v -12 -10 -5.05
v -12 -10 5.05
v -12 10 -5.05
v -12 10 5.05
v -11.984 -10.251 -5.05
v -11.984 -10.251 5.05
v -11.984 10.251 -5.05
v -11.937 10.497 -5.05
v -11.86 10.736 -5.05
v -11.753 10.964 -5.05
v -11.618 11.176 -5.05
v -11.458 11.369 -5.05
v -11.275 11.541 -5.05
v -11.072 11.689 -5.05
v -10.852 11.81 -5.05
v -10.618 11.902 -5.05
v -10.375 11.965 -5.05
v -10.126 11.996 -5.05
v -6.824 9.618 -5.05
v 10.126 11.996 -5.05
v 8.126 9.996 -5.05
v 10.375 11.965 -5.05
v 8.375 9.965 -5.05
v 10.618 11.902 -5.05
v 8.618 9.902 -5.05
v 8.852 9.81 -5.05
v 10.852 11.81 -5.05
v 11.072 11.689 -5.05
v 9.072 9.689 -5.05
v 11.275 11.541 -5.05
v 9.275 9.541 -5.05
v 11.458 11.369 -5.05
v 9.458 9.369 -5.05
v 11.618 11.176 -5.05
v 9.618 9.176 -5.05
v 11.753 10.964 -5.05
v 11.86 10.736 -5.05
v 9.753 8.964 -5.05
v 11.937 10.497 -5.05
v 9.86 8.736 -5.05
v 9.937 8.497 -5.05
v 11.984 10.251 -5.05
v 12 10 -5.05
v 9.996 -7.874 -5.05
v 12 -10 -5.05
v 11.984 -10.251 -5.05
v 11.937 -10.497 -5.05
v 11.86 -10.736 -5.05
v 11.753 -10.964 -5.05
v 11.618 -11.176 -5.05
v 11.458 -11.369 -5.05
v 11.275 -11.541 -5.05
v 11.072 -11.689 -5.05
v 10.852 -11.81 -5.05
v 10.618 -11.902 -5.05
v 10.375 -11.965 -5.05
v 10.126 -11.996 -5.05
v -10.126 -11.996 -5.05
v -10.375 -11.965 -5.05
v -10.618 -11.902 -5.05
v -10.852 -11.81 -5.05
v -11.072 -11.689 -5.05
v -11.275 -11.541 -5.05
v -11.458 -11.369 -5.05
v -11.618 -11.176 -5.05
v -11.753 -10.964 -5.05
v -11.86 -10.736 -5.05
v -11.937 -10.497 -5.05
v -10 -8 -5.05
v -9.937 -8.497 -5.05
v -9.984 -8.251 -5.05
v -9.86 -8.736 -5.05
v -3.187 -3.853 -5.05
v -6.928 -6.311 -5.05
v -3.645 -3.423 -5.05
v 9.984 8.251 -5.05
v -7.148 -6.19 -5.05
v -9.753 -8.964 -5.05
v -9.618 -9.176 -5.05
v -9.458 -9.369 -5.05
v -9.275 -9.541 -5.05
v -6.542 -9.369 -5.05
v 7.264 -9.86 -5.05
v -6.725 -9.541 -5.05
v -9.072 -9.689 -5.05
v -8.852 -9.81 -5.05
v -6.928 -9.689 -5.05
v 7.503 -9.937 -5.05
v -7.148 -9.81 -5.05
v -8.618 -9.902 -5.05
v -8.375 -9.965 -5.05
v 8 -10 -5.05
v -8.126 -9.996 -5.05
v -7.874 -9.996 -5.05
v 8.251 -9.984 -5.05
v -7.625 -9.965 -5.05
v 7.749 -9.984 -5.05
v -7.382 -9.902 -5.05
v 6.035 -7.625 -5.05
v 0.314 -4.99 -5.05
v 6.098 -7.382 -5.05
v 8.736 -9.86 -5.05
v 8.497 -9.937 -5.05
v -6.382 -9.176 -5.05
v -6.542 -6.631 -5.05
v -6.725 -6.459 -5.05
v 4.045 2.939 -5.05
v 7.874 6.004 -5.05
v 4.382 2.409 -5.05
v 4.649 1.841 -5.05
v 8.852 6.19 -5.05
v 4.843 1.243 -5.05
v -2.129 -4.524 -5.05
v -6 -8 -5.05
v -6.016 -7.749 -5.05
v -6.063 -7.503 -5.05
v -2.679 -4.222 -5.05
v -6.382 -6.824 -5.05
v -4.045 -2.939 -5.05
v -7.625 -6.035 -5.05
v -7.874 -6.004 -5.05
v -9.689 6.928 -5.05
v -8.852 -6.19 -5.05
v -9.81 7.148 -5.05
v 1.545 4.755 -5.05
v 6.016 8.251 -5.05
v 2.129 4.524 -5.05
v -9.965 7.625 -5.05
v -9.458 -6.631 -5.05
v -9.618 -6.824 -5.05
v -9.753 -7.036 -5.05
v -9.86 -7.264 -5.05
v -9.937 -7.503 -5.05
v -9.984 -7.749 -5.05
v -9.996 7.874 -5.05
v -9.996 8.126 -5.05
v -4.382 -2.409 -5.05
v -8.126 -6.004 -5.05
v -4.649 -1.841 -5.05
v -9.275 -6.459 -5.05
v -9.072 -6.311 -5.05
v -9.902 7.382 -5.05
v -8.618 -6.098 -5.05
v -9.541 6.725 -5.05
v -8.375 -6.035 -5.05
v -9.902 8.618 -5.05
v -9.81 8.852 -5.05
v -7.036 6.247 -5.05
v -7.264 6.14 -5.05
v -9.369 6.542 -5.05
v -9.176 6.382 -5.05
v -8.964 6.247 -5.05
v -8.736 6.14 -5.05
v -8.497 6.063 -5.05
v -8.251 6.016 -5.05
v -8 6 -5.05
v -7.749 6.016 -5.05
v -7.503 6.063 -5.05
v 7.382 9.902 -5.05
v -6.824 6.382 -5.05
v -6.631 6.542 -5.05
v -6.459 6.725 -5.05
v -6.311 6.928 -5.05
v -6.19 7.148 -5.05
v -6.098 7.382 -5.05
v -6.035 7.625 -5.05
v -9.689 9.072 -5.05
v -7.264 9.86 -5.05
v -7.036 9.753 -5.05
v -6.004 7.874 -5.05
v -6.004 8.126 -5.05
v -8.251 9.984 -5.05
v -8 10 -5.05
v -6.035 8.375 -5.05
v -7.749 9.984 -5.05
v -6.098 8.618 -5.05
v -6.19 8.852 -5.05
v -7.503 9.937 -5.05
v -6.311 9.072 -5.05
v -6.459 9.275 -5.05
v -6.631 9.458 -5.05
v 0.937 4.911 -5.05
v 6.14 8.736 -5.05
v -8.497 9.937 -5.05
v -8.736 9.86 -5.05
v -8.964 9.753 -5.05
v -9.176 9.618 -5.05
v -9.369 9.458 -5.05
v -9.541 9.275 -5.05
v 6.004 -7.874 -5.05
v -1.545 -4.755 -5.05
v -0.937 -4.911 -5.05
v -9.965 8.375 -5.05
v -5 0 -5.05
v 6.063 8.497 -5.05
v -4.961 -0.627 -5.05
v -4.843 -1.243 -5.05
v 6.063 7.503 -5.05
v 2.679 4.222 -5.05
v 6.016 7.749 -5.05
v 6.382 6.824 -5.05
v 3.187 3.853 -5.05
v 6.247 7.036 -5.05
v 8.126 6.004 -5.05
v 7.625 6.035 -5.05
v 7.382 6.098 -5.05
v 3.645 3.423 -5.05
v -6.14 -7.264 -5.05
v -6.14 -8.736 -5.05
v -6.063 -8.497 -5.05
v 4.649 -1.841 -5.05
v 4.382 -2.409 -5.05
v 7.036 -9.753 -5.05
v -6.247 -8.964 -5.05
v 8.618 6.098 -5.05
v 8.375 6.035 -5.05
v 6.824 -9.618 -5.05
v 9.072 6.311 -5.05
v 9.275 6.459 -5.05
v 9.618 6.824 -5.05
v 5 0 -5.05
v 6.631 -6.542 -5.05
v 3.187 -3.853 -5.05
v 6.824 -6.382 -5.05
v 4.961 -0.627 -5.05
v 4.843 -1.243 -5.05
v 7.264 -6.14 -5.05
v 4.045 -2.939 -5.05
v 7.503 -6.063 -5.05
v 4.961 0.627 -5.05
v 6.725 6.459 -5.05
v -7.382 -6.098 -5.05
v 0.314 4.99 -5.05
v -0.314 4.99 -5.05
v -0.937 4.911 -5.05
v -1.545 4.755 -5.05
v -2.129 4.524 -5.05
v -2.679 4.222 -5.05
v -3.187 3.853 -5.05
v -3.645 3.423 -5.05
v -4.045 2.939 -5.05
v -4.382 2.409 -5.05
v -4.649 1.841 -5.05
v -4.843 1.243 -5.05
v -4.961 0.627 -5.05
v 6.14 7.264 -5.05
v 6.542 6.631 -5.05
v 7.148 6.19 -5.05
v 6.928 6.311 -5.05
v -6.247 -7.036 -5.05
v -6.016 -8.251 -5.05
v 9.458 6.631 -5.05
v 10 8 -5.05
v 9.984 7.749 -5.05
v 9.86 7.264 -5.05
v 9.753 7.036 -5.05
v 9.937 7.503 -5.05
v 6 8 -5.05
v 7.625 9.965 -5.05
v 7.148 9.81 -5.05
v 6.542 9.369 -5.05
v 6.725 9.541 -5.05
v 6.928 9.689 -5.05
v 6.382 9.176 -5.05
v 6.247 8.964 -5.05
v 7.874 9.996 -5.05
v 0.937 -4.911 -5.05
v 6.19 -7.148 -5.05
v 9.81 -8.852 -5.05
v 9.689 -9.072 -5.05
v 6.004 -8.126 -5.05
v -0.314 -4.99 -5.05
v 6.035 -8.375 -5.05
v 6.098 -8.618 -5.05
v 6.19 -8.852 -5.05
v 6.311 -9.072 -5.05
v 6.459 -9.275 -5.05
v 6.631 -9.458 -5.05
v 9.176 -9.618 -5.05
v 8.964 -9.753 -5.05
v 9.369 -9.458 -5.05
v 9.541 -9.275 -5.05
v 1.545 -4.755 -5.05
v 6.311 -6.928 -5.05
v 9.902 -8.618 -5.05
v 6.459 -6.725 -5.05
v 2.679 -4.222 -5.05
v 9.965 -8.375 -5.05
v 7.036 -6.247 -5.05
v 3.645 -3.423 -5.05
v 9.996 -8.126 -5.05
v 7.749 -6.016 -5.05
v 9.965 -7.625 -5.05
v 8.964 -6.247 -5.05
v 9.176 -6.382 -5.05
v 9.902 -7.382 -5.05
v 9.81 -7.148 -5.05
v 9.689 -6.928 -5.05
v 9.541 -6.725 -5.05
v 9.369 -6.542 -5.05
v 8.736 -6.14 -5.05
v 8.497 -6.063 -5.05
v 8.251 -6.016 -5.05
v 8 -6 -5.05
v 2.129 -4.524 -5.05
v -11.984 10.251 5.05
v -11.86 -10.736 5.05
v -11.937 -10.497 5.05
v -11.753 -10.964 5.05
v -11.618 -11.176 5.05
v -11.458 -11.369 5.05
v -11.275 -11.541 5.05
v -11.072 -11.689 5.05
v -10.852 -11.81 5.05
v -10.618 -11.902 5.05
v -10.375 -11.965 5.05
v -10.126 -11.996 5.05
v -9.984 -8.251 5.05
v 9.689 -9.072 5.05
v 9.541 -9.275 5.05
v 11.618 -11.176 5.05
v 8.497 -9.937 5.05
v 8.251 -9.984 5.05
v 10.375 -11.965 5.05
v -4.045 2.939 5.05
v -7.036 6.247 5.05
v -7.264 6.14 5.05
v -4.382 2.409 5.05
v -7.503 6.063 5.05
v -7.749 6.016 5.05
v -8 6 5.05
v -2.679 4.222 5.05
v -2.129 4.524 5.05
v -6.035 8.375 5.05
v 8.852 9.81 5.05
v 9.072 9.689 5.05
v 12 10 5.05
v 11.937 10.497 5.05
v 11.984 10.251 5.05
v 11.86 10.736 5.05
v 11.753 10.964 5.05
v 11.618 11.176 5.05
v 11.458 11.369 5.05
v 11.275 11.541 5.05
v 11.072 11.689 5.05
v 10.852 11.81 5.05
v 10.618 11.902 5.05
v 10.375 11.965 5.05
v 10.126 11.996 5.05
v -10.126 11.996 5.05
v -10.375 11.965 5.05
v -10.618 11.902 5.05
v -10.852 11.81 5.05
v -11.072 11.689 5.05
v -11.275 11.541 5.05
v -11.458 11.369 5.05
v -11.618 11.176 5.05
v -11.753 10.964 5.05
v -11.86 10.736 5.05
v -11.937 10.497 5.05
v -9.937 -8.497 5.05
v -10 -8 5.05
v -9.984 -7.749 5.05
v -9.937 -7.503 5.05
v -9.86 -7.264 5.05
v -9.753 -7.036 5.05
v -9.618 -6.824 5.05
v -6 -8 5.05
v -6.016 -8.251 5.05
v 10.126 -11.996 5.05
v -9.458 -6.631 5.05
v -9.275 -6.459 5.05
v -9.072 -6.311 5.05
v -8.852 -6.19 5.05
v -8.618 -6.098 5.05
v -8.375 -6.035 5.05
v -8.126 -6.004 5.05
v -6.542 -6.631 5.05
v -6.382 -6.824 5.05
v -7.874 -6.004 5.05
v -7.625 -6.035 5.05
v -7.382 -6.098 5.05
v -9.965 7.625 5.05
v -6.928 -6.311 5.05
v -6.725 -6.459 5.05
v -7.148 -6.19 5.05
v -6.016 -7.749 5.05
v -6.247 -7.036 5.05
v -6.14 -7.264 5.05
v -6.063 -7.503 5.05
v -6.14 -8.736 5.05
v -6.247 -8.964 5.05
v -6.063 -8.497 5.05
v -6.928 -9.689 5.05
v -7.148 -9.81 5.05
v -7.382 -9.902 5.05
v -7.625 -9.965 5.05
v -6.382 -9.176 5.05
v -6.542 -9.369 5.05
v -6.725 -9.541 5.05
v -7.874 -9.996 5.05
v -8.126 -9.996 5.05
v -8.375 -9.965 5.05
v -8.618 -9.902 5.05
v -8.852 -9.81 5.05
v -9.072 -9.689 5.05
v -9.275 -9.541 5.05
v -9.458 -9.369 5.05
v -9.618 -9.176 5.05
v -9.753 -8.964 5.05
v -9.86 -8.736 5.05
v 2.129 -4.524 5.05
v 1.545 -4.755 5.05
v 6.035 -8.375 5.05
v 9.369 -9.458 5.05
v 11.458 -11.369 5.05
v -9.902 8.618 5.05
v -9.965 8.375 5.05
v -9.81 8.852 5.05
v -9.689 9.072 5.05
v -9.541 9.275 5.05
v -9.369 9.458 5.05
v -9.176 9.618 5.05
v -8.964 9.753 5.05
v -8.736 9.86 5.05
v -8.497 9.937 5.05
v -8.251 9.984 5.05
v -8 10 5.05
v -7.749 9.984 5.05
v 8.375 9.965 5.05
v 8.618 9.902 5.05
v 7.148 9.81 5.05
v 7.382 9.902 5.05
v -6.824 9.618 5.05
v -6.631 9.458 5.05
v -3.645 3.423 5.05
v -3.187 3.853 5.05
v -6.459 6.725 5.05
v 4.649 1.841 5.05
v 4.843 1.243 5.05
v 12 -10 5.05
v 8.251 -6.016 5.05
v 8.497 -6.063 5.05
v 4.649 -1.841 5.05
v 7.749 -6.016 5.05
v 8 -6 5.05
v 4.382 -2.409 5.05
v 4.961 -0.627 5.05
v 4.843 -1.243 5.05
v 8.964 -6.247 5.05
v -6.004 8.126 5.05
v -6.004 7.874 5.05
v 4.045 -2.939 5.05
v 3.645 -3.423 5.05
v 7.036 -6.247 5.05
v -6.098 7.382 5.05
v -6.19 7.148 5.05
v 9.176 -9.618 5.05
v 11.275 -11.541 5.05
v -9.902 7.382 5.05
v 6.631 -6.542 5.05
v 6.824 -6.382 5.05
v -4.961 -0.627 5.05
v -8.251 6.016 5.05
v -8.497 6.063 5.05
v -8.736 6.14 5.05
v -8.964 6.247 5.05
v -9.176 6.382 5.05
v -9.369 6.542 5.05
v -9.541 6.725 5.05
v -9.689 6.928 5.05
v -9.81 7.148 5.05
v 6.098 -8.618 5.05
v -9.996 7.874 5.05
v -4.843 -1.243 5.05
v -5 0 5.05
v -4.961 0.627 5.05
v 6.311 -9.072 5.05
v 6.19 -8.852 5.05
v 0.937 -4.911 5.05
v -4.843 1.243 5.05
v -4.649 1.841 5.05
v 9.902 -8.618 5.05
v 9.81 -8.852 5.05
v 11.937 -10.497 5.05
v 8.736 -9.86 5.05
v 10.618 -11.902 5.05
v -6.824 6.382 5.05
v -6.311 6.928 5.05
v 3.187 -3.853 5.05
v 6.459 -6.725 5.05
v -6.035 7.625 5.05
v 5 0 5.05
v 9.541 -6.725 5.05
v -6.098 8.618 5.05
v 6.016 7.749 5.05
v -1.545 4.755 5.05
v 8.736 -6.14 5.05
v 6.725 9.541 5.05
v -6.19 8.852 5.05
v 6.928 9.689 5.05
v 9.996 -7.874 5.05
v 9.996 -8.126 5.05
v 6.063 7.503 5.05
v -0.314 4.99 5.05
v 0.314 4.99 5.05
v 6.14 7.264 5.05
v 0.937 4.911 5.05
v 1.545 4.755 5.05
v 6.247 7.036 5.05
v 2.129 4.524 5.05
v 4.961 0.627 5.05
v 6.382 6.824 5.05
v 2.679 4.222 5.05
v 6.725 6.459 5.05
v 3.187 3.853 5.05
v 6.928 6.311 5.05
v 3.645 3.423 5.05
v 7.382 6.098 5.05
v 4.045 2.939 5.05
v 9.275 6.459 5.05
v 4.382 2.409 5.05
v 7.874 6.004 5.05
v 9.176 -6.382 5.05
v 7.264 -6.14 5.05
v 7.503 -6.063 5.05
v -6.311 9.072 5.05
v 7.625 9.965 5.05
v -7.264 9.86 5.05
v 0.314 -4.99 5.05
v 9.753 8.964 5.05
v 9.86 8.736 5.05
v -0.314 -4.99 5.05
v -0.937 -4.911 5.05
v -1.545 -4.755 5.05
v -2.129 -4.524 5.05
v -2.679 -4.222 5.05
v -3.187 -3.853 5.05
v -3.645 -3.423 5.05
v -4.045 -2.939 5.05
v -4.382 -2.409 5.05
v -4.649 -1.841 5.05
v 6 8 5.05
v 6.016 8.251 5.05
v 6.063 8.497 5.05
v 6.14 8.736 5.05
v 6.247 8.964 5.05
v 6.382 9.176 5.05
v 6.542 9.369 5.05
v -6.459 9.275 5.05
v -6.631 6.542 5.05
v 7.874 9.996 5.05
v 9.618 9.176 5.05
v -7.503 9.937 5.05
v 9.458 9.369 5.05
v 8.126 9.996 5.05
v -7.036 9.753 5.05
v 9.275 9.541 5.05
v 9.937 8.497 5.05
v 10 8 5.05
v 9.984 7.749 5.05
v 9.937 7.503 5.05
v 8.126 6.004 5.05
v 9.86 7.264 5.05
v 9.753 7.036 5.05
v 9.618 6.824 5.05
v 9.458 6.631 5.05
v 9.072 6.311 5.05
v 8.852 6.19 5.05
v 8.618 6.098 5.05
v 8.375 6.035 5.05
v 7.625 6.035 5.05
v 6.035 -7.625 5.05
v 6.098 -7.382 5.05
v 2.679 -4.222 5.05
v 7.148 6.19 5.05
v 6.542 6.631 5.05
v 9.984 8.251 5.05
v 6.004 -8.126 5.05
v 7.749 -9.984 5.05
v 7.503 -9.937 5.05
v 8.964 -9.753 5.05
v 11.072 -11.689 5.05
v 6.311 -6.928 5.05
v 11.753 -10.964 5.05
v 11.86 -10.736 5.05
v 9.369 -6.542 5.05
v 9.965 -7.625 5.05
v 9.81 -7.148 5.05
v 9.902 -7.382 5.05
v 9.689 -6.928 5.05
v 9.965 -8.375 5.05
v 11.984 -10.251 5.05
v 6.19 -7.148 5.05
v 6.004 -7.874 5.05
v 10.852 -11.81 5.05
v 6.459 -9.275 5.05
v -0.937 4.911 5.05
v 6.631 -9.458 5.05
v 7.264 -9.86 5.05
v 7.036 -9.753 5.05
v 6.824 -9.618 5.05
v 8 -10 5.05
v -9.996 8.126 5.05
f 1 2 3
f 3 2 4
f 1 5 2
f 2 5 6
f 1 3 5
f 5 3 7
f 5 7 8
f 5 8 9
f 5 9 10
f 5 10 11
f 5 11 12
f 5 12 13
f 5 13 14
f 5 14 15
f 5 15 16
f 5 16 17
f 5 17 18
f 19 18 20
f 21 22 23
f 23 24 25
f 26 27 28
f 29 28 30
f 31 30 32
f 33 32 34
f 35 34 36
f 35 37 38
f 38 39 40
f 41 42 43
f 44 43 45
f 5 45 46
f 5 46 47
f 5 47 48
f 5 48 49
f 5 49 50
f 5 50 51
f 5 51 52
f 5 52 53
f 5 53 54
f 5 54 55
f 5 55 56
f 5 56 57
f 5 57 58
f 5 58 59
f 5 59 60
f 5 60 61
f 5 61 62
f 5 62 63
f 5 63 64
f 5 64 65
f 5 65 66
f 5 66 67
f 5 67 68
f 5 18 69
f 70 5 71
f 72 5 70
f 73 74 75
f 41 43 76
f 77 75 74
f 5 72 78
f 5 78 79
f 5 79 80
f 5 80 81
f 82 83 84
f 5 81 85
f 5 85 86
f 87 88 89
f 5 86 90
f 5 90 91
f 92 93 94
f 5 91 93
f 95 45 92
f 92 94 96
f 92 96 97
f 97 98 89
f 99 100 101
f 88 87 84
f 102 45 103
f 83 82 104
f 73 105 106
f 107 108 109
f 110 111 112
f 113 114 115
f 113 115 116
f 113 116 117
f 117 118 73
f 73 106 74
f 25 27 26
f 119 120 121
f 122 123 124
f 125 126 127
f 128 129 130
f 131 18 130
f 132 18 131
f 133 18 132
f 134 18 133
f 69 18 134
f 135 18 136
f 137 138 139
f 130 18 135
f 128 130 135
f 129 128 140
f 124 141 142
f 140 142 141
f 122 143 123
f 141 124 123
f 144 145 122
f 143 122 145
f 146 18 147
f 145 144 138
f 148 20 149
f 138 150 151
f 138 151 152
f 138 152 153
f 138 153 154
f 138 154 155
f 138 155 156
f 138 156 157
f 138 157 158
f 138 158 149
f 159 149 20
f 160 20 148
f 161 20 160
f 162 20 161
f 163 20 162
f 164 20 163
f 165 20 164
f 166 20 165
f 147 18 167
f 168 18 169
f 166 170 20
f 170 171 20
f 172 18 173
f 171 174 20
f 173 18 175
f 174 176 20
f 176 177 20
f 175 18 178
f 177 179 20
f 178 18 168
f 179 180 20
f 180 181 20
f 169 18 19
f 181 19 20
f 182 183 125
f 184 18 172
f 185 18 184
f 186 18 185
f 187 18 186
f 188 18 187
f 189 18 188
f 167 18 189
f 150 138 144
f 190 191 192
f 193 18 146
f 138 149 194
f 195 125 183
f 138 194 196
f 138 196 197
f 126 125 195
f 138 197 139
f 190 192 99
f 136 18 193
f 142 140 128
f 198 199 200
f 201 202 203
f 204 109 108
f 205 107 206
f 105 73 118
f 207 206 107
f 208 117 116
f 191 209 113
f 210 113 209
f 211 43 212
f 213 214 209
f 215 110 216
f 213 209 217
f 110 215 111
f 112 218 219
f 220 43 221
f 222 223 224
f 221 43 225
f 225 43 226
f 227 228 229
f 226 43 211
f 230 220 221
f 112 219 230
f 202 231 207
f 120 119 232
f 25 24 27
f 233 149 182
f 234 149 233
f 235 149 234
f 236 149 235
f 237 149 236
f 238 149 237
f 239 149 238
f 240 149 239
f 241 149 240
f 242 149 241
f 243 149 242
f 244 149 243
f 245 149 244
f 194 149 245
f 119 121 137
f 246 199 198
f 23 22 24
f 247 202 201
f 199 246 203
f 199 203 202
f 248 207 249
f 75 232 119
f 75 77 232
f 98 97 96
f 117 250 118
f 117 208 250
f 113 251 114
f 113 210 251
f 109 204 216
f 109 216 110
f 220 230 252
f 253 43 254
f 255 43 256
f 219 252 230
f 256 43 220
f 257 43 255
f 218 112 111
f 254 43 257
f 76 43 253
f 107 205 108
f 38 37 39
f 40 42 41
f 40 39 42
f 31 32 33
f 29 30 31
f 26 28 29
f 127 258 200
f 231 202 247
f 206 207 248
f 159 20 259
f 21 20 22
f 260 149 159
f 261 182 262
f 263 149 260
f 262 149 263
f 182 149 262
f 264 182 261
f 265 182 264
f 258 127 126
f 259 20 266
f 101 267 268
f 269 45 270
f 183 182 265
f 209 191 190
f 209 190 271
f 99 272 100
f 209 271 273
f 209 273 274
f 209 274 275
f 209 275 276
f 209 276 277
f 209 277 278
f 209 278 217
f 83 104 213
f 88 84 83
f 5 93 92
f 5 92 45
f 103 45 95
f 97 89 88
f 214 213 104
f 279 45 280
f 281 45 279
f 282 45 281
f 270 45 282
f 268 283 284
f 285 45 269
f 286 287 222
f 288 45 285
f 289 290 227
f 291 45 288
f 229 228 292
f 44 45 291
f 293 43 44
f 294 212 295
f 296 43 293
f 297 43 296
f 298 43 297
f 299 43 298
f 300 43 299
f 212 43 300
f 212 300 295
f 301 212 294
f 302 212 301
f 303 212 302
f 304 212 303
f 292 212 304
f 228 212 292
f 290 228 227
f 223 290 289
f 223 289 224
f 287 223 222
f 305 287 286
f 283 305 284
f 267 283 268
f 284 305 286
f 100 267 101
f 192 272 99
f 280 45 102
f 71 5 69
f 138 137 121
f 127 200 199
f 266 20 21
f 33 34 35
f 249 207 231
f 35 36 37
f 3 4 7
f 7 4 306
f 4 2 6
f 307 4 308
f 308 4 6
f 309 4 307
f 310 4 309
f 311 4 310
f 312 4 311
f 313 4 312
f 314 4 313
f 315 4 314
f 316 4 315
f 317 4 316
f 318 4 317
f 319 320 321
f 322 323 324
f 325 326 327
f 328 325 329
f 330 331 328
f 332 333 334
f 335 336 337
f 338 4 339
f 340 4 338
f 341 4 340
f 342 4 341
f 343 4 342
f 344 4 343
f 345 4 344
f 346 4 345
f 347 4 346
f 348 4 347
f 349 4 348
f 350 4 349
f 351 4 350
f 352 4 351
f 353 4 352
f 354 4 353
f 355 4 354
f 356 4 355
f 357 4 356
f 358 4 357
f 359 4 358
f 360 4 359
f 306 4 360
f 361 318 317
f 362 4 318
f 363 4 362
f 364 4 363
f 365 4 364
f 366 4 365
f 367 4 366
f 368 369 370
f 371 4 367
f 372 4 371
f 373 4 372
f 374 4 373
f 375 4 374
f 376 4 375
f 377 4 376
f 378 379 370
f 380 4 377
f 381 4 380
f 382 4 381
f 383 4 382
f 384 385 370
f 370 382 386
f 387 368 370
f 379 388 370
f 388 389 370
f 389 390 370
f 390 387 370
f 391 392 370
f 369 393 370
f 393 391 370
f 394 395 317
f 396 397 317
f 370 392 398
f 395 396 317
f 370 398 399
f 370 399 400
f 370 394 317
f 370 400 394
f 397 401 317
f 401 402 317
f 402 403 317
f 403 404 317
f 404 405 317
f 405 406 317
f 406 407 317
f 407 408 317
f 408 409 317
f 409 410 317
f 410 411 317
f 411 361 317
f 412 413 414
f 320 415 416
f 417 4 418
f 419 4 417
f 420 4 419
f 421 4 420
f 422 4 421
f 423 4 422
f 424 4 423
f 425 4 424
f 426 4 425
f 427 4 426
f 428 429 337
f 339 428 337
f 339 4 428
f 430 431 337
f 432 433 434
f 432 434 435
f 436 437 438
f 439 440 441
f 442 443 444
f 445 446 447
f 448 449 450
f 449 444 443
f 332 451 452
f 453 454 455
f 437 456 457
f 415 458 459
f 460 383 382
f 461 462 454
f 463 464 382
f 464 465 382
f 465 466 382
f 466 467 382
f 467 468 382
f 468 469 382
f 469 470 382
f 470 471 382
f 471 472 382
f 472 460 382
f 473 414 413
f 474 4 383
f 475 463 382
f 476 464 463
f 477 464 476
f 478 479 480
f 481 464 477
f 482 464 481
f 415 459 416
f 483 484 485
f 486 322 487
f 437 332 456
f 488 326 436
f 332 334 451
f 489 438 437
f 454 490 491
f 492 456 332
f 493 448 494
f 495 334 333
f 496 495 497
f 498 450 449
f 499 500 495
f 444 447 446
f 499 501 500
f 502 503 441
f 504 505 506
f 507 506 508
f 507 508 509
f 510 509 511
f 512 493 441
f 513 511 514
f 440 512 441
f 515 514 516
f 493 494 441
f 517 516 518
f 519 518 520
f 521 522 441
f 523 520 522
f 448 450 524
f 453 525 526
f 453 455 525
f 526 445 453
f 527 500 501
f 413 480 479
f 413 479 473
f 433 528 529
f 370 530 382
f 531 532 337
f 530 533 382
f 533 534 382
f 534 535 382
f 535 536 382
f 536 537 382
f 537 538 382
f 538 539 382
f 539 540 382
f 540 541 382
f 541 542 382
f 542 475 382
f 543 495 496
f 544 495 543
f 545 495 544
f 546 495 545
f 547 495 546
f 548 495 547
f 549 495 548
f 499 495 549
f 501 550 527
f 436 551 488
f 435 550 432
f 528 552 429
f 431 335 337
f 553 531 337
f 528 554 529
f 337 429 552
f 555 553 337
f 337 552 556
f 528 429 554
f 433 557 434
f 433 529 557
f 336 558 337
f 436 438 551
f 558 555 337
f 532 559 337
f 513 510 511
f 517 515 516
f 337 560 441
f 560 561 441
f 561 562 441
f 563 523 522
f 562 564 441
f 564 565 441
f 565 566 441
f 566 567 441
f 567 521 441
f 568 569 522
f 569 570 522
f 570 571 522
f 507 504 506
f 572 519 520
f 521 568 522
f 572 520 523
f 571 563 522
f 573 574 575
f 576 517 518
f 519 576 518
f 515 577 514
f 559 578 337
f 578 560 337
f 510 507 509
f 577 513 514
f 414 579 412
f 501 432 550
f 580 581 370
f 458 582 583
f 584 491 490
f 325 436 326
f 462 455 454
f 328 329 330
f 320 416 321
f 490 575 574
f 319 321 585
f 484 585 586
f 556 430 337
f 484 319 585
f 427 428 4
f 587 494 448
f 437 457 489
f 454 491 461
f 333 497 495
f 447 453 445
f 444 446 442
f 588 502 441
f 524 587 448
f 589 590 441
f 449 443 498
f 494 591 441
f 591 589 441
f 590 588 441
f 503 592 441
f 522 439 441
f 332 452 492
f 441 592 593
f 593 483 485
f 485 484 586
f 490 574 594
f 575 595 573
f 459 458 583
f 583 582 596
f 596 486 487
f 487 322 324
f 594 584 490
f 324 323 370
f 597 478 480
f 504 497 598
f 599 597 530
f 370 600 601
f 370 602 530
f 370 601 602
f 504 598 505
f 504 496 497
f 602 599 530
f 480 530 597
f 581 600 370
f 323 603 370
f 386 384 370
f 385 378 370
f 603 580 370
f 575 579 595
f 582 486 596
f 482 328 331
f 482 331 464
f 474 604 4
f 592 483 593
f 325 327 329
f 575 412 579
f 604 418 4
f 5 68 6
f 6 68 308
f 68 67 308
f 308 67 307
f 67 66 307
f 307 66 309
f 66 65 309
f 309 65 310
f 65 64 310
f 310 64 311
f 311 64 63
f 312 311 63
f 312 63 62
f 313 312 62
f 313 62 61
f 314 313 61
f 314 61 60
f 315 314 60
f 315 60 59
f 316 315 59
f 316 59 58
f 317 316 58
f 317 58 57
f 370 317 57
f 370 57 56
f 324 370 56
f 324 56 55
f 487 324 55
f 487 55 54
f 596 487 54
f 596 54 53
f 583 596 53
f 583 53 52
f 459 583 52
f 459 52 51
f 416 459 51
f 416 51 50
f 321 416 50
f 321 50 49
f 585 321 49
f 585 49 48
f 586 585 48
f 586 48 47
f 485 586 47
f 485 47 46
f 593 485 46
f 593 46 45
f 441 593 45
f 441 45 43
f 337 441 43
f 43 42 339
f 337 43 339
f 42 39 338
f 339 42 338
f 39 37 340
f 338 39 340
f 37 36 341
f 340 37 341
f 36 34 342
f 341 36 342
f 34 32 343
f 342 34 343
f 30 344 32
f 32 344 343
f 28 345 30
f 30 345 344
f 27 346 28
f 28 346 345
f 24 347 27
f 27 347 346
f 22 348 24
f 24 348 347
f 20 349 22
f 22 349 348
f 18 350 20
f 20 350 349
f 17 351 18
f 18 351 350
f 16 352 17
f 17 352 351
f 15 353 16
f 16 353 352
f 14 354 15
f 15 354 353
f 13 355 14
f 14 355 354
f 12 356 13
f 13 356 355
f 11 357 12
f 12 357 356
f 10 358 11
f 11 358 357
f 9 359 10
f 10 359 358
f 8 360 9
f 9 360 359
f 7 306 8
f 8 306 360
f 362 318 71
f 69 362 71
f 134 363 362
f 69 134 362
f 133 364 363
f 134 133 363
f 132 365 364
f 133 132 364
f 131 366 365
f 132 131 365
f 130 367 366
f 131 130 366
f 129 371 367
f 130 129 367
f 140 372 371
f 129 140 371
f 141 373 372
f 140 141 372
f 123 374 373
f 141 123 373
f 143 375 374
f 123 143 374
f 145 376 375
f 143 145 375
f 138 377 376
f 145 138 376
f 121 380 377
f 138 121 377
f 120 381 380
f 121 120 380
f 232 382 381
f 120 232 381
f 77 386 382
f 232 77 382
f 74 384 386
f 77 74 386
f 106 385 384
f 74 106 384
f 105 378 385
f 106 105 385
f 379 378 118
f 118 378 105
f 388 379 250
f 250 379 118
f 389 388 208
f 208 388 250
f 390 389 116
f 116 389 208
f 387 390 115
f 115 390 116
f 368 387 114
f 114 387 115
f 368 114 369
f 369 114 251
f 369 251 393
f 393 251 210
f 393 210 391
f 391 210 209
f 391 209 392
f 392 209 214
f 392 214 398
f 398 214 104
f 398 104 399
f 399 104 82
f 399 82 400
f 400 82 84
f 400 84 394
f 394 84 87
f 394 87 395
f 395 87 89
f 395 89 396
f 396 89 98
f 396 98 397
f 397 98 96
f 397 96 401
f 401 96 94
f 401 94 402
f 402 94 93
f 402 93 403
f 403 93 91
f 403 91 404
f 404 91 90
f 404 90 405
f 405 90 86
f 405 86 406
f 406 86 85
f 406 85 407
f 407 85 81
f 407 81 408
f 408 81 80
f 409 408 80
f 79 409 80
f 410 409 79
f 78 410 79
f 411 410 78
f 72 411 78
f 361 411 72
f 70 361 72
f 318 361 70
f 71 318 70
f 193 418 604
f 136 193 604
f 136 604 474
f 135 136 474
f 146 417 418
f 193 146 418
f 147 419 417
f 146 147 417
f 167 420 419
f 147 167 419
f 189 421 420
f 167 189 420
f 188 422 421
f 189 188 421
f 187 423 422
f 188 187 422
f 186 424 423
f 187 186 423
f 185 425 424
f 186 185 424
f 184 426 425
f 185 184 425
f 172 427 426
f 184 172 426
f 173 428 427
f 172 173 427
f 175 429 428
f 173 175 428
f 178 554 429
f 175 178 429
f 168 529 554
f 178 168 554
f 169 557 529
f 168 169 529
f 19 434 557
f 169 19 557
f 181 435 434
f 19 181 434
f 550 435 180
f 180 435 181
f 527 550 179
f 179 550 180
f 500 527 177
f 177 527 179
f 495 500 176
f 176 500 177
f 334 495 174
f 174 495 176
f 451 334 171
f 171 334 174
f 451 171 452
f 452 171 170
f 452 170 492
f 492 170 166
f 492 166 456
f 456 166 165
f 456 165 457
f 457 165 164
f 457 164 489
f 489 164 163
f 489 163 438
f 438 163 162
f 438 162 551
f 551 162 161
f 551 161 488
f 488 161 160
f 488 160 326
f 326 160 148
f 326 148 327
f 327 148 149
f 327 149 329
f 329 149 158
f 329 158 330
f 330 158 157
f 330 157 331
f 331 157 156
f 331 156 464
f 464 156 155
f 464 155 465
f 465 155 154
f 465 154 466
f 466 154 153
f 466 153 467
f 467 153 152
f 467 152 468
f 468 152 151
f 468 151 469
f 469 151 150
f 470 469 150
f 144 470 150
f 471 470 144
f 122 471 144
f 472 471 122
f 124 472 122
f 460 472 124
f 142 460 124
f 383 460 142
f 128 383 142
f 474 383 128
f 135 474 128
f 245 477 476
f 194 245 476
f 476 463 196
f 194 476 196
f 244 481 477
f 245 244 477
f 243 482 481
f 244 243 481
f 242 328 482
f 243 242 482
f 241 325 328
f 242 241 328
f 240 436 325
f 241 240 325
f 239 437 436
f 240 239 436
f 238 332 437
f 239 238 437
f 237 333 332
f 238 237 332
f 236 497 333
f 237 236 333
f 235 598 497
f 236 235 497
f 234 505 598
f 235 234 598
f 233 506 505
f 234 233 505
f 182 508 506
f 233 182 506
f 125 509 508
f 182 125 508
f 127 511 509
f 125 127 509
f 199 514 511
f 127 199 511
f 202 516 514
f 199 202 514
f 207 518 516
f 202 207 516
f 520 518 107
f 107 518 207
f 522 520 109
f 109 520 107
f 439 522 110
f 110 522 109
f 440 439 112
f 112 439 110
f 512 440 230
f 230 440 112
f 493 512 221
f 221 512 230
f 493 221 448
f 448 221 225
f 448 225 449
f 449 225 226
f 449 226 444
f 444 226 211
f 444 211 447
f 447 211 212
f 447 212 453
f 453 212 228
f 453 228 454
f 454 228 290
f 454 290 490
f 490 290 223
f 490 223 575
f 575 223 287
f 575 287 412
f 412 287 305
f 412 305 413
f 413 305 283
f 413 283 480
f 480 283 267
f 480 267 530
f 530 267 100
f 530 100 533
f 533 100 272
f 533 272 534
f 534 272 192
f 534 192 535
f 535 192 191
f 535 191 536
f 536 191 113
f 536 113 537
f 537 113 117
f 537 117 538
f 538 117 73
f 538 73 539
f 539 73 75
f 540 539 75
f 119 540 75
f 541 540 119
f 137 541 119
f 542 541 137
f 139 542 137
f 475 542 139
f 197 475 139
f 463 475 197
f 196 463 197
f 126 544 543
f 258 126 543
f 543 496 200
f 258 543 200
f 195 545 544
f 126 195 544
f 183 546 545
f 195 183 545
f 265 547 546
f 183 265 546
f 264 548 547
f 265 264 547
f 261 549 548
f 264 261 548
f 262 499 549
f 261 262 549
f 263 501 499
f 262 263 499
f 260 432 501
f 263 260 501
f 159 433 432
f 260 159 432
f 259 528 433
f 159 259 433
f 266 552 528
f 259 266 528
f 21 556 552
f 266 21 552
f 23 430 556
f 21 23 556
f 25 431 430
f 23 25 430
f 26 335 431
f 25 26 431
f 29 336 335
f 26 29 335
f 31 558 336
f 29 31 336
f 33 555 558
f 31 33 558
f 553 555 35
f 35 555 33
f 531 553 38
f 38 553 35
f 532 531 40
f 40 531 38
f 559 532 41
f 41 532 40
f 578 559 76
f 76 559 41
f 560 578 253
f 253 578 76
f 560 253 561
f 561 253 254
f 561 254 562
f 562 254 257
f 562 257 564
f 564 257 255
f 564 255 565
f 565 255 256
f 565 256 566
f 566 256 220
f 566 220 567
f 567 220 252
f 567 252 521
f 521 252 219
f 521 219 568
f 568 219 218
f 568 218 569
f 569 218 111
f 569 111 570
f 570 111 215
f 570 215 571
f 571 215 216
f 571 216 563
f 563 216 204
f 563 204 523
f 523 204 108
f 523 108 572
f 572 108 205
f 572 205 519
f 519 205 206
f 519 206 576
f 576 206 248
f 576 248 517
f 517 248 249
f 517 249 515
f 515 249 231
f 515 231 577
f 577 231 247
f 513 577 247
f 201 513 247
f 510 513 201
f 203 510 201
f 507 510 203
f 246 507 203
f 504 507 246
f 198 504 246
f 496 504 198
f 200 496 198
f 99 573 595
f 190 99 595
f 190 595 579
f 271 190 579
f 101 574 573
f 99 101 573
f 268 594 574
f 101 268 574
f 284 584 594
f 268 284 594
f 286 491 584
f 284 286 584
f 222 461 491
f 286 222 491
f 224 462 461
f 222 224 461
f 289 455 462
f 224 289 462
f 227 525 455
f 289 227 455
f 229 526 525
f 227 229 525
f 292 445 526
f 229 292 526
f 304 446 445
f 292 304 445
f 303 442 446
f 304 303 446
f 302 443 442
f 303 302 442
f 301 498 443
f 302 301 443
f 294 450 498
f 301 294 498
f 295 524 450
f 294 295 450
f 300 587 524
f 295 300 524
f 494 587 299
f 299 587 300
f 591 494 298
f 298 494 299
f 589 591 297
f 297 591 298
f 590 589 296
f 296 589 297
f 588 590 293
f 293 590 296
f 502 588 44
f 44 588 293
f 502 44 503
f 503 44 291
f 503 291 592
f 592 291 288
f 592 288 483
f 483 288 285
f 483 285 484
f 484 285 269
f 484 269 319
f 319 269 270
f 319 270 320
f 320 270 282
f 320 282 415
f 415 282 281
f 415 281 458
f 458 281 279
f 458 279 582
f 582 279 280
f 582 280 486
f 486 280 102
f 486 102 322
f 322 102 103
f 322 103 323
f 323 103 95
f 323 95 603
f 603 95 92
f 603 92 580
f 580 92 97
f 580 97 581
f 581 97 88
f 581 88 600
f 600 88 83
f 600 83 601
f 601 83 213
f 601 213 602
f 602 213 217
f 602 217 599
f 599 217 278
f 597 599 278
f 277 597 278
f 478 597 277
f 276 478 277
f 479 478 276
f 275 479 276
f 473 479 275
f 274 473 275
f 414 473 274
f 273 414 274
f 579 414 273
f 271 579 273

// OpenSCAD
$fn=50;

module example001()
{
	difference() {

		minkowski(){
			cube([20,20,10], center=true);
			cylinder(r=2,h=0.1, center=true);
		}
		cylinder(h=11, r=5, center=true);
		for (i=[1:4]){
			rotate(90 * i, [0,0,1]) translate([8,8,0])cylinder(h=10.5, r=2, center=true);
		}
	}
	
	
	
}

example001();
